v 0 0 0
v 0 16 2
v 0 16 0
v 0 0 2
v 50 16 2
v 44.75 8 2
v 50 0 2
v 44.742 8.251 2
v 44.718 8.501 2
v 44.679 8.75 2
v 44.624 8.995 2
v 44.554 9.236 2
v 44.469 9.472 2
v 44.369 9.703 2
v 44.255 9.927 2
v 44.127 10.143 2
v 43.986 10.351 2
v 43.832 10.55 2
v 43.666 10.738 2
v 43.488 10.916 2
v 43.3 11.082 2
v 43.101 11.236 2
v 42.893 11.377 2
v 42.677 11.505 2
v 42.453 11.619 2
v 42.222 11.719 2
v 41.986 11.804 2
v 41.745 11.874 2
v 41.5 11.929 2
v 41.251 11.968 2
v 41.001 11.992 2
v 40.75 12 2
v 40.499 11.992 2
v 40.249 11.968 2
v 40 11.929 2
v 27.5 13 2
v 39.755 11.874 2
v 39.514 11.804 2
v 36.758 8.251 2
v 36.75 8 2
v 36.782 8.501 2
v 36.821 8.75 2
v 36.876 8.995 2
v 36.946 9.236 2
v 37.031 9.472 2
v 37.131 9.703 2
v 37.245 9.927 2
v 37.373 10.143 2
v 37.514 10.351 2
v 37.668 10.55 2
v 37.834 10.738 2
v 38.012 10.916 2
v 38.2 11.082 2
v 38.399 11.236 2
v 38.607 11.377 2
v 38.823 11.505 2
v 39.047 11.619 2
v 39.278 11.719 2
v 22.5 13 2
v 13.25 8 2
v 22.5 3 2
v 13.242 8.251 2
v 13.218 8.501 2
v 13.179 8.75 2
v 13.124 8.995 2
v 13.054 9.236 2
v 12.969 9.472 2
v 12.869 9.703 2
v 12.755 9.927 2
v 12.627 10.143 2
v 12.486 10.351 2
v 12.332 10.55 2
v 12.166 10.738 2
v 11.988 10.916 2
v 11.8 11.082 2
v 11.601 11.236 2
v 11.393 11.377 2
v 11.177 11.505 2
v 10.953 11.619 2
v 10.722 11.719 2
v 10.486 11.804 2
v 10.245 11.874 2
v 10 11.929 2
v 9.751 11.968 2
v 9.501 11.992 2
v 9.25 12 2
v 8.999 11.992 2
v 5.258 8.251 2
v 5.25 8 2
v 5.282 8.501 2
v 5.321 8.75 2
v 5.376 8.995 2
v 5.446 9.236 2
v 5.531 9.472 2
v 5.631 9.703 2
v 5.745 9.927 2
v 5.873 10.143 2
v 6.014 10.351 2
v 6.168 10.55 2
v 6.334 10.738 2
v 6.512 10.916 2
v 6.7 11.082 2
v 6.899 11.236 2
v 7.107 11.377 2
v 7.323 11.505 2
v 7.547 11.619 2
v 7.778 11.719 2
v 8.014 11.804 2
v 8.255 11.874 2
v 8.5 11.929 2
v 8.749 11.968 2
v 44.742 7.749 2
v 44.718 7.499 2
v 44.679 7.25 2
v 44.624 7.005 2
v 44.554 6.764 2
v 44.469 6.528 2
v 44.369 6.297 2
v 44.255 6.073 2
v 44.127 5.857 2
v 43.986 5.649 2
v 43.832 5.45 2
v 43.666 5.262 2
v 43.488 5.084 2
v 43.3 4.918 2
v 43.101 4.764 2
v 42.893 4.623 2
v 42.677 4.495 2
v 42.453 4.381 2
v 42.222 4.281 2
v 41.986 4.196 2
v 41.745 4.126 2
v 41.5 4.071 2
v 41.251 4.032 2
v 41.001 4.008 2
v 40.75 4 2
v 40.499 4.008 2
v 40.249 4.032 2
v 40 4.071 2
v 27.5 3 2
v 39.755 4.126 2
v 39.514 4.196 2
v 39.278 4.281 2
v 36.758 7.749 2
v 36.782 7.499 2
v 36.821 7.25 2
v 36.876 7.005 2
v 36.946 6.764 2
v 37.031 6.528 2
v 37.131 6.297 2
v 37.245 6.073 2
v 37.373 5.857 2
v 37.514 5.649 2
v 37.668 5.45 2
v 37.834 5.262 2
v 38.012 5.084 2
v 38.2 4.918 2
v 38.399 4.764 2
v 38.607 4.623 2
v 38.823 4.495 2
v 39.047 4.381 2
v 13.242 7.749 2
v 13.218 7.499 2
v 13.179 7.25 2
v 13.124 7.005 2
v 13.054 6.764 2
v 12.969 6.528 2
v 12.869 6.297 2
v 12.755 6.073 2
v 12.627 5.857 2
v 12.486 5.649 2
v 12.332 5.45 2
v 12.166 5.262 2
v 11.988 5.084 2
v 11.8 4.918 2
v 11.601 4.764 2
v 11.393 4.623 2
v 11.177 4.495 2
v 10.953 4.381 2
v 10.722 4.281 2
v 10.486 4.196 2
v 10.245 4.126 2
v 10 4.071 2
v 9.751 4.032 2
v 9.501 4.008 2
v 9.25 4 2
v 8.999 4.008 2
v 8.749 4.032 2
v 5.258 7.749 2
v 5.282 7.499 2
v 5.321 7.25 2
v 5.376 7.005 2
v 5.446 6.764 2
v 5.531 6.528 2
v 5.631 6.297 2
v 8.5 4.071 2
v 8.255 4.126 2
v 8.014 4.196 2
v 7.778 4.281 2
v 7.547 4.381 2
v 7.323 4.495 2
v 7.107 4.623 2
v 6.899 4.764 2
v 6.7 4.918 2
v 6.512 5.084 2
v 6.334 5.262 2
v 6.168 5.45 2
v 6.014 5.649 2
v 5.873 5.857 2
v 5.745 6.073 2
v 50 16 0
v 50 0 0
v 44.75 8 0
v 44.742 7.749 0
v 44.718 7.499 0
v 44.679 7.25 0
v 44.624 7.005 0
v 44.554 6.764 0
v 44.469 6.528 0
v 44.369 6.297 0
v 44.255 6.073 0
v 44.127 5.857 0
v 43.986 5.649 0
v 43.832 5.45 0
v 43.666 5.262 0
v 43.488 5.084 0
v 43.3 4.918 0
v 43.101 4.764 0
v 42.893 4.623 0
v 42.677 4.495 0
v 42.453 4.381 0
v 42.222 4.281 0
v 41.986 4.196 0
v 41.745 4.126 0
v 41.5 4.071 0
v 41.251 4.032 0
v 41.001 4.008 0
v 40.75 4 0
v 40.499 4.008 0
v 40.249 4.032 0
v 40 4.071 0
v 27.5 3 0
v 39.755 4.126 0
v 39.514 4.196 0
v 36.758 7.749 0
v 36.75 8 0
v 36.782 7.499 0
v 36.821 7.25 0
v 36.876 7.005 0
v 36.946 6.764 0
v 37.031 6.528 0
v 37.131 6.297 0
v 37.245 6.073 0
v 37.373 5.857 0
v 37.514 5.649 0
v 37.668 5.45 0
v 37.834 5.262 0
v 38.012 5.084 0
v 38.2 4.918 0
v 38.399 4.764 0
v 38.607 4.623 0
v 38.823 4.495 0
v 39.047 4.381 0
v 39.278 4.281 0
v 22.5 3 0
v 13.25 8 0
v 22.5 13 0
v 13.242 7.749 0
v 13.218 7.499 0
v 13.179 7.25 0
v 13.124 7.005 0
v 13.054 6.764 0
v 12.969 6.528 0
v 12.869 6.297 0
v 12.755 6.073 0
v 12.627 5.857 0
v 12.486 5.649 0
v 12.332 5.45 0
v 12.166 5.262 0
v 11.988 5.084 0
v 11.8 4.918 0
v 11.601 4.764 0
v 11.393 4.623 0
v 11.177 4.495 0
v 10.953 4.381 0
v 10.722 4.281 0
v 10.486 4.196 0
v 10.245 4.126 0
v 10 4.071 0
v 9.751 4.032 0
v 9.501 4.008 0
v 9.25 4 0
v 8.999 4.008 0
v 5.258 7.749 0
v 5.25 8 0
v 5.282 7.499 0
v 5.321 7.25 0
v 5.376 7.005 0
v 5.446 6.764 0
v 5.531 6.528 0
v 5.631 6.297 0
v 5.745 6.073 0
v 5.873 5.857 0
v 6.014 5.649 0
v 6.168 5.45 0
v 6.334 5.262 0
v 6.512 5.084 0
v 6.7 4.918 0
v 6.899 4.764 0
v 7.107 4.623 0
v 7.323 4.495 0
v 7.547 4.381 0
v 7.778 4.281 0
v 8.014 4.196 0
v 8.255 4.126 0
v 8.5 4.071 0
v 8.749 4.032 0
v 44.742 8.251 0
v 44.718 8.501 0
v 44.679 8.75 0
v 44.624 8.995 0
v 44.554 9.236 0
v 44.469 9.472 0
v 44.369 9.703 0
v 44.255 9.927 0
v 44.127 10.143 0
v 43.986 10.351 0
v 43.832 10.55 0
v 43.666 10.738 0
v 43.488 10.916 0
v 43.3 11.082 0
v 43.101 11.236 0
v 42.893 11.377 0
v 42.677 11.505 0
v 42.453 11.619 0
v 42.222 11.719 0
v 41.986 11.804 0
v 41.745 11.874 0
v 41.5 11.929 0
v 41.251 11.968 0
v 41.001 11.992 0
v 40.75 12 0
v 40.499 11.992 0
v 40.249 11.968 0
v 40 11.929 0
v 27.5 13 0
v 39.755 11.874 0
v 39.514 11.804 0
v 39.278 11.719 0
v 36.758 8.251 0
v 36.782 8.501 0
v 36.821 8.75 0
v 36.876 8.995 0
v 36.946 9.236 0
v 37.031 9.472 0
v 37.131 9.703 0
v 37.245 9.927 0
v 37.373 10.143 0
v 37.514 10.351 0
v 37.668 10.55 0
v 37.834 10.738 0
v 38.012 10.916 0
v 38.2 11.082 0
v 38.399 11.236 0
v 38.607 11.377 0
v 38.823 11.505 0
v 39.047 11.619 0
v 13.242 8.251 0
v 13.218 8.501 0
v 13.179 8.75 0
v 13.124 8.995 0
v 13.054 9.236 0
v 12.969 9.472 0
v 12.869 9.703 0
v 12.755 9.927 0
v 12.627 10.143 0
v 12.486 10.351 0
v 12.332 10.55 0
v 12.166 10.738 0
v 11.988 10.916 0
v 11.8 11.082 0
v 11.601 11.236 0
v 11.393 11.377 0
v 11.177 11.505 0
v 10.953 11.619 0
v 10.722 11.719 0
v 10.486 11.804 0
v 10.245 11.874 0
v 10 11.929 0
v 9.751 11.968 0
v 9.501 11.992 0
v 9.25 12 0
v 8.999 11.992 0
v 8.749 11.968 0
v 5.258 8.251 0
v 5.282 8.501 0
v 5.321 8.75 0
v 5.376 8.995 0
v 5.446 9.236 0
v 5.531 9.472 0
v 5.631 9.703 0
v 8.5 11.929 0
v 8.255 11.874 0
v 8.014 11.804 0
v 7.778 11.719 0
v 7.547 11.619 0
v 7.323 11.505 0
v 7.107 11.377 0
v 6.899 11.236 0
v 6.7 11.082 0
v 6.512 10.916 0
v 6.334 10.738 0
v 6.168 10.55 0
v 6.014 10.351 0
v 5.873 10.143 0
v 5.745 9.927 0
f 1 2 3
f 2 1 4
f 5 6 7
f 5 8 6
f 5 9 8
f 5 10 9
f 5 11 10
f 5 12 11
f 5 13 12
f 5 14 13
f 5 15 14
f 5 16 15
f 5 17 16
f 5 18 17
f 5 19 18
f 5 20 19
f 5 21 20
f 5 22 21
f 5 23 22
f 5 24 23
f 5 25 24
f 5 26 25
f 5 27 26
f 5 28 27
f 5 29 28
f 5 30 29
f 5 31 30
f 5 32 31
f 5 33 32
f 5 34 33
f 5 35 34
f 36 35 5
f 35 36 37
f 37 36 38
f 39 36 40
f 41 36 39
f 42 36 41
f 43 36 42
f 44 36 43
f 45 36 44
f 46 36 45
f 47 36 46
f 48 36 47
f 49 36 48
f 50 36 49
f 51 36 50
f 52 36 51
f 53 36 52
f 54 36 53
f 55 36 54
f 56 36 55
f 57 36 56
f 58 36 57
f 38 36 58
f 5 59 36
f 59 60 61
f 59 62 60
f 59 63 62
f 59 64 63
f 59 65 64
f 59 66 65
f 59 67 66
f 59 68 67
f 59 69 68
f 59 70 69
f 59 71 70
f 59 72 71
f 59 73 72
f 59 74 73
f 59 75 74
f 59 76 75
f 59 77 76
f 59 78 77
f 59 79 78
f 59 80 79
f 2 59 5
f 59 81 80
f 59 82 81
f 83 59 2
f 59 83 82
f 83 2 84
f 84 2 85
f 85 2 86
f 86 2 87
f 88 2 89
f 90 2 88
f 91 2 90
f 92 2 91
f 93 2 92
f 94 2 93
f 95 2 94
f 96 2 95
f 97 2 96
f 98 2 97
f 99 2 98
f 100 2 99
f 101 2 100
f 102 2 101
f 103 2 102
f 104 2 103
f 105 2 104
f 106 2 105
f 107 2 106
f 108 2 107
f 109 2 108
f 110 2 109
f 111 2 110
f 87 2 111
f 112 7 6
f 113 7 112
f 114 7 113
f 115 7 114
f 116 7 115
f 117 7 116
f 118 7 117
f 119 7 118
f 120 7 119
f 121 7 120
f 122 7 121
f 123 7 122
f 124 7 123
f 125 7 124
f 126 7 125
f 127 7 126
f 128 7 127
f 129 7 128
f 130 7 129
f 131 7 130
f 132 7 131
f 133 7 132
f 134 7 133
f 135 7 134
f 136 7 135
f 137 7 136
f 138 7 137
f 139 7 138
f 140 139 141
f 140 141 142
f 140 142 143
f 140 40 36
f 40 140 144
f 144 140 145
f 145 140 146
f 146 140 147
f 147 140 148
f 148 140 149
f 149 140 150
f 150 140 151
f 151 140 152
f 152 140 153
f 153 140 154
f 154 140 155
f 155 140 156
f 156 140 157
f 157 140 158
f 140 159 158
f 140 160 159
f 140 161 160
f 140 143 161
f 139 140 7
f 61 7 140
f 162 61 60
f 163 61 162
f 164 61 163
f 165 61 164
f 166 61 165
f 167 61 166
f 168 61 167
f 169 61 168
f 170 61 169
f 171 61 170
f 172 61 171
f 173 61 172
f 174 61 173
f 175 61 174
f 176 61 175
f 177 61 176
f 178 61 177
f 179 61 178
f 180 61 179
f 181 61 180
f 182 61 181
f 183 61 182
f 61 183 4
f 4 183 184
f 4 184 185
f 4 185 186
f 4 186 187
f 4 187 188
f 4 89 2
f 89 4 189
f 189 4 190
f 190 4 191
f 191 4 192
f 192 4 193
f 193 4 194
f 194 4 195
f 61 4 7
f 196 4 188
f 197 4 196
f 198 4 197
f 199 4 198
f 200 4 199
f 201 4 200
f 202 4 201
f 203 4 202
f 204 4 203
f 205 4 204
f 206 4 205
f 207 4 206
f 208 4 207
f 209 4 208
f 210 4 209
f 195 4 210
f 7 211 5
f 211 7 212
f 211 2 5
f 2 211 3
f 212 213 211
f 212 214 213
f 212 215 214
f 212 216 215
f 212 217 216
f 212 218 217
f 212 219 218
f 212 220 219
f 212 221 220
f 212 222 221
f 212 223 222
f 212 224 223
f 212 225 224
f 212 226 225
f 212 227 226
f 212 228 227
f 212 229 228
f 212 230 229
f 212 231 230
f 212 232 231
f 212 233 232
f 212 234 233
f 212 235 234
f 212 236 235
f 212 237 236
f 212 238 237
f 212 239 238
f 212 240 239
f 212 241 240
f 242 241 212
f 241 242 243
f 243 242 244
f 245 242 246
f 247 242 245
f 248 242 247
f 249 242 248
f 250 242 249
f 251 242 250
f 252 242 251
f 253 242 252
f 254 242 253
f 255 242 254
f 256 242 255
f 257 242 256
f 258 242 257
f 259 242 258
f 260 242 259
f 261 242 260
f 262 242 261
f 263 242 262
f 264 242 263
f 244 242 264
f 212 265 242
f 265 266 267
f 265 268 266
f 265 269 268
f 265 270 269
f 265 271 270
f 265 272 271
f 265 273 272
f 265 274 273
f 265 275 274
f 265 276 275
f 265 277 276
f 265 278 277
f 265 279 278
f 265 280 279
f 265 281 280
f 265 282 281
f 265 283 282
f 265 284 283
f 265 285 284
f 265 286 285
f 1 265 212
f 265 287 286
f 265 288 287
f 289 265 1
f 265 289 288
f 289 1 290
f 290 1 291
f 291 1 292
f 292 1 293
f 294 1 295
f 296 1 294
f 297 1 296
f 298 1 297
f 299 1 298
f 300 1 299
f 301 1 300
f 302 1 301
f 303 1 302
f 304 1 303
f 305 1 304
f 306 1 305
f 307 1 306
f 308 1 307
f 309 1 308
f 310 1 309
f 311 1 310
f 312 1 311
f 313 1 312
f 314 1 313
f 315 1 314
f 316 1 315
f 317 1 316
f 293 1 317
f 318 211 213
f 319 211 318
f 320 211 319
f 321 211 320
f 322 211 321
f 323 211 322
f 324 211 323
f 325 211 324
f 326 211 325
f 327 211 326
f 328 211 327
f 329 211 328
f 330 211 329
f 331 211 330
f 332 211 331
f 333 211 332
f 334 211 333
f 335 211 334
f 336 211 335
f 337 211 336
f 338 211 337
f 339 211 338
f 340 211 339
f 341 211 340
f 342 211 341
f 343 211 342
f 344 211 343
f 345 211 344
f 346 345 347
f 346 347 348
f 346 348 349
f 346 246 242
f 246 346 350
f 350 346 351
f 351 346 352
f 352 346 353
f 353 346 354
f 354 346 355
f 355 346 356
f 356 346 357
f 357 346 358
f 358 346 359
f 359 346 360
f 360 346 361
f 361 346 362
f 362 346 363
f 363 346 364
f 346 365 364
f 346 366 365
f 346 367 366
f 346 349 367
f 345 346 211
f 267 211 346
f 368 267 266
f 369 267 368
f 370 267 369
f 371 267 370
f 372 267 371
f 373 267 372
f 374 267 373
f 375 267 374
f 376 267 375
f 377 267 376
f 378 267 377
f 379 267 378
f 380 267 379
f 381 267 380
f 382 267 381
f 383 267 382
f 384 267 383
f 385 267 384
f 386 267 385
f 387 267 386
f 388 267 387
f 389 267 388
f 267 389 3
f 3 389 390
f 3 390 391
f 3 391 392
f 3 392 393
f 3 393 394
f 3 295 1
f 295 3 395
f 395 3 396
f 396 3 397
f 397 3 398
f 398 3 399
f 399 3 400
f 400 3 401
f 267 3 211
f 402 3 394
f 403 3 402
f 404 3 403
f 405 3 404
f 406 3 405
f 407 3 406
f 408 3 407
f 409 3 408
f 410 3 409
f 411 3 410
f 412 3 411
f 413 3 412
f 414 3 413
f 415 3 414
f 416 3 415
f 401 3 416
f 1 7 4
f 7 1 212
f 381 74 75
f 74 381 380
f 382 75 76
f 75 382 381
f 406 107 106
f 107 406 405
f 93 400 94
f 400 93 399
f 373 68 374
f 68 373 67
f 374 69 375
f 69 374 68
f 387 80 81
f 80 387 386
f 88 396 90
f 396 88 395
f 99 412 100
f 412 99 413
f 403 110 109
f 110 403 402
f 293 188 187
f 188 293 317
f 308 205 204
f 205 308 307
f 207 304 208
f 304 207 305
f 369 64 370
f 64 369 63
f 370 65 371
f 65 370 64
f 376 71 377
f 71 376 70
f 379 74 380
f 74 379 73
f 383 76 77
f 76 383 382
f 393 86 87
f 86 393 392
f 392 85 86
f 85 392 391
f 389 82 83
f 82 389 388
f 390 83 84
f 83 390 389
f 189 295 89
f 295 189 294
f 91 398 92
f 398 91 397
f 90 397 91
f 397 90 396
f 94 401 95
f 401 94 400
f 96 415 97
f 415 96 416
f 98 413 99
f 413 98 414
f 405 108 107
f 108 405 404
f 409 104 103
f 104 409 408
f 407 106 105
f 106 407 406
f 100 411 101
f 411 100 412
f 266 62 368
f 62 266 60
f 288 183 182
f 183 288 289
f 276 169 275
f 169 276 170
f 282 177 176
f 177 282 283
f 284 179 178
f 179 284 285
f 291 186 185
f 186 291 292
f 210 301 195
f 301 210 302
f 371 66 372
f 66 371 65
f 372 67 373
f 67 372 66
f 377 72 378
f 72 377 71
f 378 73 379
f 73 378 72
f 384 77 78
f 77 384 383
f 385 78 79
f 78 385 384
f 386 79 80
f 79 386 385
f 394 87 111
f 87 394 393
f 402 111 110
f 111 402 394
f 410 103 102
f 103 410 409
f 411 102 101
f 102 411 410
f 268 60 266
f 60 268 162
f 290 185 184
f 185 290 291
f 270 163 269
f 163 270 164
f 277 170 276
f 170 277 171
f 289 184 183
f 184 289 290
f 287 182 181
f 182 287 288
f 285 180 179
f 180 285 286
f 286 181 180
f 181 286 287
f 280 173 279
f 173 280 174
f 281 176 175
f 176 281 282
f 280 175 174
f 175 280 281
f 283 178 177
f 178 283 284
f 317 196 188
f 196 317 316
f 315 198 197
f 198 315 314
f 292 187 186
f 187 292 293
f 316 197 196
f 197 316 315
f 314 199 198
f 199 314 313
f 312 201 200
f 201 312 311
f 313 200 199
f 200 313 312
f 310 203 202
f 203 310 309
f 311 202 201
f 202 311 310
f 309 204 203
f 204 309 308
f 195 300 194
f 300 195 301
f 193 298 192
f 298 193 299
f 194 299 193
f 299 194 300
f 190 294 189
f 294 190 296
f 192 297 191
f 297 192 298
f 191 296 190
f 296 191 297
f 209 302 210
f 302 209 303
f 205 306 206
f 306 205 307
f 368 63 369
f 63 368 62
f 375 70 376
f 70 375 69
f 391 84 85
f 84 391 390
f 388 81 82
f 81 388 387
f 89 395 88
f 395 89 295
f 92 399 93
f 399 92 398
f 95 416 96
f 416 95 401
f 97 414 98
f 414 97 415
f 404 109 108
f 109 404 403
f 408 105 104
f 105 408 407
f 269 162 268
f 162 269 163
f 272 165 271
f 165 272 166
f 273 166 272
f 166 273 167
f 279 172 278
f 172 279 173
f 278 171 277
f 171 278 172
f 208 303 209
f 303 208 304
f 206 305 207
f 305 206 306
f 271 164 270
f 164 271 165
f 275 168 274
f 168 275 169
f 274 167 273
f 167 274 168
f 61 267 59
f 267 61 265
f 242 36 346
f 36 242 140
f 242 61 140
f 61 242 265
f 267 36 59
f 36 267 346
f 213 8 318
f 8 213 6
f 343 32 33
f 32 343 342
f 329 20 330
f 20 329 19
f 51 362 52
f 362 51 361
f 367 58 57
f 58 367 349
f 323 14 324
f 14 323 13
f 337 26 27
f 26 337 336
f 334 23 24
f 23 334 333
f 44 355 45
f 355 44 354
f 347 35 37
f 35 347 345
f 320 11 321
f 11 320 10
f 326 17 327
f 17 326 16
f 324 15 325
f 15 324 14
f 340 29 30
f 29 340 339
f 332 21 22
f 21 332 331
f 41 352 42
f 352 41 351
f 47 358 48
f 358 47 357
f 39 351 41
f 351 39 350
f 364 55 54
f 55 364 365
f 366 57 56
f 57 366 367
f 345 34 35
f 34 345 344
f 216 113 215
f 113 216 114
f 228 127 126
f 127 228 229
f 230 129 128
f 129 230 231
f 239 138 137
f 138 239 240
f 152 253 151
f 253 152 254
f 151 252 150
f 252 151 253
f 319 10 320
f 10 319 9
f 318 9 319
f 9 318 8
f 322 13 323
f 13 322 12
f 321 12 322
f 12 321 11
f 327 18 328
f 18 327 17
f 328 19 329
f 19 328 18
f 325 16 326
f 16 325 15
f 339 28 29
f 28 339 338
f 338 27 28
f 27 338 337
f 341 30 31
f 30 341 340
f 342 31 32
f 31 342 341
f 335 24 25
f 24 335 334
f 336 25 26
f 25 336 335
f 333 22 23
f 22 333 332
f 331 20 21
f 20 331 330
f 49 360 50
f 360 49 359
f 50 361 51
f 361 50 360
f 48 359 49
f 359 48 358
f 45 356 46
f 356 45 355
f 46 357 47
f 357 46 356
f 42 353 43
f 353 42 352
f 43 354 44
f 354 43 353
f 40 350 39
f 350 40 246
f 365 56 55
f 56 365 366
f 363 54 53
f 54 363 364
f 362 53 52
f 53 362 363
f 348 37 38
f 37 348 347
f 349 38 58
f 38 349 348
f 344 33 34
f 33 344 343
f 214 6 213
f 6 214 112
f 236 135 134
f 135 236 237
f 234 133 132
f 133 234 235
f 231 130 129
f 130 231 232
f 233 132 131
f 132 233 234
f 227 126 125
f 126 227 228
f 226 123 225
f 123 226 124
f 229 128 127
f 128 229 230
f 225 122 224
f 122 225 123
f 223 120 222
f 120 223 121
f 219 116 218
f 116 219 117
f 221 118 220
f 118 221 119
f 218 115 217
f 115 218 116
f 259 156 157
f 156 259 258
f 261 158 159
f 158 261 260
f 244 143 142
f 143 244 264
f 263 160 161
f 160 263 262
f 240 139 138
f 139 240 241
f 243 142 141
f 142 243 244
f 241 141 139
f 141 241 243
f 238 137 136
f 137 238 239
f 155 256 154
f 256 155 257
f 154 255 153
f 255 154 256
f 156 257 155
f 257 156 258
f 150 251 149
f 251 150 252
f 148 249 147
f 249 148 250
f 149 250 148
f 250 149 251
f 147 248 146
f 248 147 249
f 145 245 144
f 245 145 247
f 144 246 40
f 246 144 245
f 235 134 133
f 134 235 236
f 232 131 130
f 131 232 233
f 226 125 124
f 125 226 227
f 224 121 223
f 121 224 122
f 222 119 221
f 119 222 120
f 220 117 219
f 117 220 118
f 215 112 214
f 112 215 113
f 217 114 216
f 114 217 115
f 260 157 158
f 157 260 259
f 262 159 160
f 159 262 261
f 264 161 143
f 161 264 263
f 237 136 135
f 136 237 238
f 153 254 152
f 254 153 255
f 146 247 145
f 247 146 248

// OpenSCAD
$fn=100;

$material=2;
$base_w=50;
$base_d=16;
$led_space = 31.5;
$led_d=8;
$cabel_w=5;
$cabel_d=10;

difference() {
    cube([$base_w, $base_d, $material]);

    translate([
        ($base_w-$led_space)/2,
        $base_d/2,
        0
    ])
    cylinder(h=$material, d=$led_d, center=false);

    translate([
    ($base_w-$cabel_w)/2,
    ($base_d-$cabel_d)/2,
    0
    ])
    cube([$cabel_w,$cabel_d,$material]);

    translate([
        $base_w-(($base_w-$led_space)/2),
        $base_d/2,
        0
    ])
    cylinder(h=$material, d=$led_d, center=false);
}
